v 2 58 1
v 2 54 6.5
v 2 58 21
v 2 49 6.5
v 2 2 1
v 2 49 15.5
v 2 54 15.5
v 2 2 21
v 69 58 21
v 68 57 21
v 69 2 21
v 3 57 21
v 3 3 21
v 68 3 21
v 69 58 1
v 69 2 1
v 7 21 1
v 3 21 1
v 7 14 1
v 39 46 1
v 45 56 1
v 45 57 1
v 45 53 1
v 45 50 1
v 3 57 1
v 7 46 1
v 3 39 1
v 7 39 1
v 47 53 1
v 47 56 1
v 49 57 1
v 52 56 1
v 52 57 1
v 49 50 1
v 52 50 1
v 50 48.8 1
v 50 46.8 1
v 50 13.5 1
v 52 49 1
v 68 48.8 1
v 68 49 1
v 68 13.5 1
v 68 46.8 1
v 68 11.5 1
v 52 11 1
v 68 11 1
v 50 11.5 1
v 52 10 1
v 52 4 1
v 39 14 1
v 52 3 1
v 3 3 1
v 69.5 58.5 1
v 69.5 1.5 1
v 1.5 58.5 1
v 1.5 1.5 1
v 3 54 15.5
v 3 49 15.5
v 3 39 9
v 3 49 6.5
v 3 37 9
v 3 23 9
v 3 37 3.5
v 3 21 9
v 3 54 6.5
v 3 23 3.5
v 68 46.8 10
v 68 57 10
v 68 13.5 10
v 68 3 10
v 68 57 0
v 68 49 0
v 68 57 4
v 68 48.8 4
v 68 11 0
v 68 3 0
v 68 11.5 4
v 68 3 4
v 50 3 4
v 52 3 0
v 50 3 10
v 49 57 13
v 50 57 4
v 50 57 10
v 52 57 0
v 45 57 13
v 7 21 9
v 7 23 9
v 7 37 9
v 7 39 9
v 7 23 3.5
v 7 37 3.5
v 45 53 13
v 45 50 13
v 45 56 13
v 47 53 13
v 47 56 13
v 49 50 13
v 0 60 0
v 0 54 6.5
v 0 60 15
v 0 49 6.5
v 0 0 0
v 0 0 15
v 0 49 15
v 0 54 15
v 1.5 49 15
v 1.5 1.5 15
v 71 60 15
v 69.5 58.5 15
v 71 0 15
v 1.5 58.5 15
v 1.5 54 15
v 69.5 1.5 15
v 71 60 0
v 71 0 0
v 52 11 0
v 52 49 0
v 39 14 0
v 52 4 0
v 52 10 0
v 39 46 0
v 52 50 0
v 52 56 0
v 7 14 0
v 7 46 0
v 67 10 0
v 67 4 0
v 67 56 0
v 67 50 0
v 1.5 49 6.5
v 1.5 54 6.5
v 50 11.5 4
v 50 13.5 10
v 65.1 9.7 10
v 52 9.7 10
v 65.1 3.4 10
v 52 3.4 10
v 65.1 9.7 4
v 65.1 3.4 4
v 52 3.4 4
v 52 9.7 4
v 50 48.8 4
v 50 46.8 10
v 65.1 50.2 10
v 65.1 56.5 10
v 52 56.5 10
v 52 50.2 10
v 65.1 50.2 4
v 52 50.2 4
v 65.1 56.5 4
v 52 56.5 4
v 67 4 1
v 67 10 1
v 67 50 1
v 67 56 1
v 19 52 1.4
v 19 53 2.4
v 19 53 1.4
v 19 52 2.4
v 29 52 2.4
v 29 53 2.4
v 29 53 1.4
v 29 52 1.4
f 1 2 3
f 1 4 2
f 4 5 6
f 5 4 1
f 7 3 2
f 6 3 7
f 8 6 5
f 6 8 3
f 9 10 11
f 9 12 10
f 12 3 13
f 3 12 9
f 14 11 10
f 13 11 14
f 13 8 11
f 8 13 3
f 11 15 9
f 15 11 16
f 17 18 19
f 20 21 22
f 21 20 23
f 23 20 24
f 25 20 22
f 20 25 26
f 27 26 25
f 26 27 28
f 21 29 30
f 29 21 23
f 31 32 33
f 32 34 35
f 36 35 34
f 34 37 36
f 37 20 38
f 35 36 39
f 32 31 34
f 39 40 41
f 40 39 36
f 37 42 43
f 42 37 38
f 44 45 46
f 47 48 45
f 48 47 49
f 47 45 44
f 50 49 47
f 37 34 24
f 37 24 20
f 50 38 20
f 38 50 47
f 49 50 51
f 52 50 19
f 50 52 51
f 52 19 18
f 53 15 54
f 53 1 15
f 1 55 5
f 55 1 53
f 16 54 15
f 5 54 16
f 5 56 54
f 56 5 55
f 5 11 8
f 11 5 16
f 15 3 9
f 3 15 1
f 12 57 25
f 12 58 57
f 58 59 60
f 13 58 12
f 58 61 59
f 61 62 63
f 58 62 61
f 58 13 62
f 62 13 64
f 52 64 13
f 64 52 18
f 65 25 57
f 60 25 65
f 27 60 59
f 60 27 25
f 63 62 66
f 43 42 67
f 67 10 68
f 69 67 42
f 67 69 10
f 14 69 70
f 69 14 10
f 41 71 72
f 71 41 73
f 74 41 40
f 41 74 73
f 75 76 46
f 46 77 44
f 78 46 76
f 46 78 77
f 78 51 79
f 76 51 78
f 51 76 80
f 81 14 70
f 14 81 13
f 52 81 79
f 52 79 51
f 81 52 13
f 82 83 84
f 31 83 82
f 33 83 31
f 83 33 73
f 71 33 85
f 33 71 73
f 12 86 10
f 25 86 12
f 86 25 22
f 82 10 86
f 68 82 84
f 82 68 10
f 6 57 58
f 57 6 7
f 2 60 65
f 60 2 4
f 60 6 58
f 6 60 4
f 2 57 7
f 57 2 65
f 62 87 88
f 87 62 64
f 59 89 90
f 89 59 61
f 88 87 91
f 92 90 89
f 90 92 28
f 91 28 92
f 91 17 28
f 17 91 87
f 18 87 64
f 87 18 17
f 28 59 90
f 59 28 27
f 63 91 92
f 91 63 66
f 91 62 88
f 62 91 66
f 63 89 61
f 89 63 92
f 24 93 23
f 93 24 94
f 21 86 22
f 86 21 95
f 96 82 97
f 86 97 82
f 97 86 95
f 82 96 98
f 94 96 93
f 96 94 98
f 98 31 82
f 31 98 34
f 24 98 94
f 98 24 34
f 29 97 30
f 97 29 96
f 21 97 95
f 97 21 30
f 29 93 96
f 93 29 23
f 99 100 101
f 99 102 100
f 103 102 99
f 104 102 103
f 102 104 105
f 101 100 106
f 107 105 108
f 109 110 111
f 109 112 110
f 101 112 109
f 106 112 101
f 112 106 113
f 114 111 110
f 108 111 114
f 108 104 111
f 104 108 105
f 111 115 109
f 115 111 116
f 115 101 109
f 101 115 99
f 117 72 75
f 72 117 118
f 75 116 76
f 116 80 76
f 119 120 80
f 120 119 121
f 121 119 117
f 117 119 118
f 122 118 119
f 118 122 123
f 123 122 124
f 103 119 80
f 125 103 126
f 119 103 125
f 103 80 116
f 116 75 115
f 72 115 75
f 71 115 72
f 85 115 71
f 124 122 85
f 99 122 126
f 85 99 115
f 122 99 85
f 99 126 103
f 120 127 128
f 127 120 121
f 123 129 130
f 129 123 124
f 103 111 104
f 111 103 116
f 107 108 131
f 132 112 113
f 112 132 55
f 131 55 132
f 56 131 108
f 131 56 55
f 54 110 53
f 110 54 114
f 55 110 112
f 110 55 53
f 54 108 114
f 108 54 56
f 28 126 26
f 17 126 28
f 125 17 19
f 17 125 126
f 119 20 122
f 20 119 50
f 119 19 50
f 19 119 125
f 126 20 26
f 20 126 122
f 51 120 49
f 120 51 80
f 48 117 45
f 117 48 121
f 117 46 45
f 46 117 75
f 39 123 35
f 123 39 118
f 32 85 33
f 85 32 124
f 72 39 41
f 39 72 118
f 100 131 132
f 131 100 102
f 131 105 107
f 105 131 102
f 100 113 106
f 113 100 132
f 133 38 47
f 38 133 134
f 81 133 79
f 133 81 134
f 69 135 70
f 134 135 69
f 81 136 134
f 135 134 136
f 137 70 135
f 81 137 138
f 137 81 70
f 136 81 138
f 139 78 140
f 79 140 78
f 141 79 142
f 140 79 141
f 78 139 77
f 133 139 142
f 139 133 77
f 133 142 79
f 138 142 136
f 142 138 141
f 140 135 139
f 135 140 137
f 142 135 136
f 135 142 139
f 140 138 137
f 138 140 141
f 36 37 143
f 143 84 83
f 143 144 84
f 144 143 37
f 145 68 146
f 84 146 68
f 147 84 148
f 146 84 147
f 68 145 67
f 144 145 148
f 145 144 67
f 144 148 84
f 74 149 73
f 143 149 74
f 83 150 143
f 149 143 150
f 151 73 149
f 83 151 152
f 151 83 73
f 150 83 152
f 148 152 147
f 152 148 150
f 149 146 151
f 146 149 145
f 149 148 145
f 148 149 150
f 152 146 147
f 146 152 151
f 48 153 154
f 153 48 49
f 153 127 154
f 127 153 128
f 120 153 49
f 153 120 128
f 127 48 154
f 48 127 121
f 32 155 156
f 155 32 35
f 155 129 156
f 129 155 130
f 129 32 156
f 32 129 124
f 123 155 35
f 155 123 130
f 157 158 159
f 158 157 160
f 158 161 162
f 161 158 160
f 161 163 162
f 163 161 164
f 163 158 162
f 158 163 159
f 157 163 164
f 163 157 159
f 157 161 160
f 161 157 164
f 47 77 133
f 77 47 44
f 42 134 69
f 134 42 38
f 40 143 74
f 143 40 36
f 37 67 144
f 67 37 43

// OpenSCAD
/*
 * @copyright Copyright (C) 2016 Leiden Tech. All rights reserved.
 * @license http://www.gnu.org/licenses/gpl-3.0.txt GNU General Public License v3
 * 
 */
//covered switches boloblinky variation

$wall=1;
$height=15;
$length=71;
$width=60;
$totalheight=20;
$screen=32;

difference (){
 translate([0,0,0])  
 cube ([$length, $width, $height]);

 //cutout
 translate([$wall*1.5,$wall*1.5,$wall]) 
 cube ([$length-$wall*3, $width-$wall*3, $totalheight]);

 //screen
 translate([5+$wall*2,($width-$screen)/2,0])
 cube ([$screen, $screen, $wall]); 
    
 //button top cutout  
 translate([$length-$wall*2-17,$wall*2+1,0])  
 cube ([16, 8, $wall]);
 translate([$length-$wall*2-17,$width-11,0])  
 cube ([16, 8, $wall]);

 //usb hole
 translate([$wall-2,$width-11,5.5+$wall])  
 cube ([5, 5, 9]);
}
//button top cutout fill  
translate([$length-$wall*2-17,$wall*3+1,0])  
cube ([15, 6, $wall]);
translate([$length-$wall*2-17,$width-5-5,0])  
cube ([15, 6, $wall]);

difference()
{ //totalheight box
 translate([$wall*2,$wall*2,$wall])  
 cube ([$length-$wall*3-1, $width-$wall*3-1, $totalheight]);
 //inner cutout
 translate([$wall*3,$wall*3,$wall])  
 cube ([$length-$wall*4-2, $width-$wall*4-2, $totalheight]);

 //usb hole
 translate([$wall-2,$width-11,5.5+$wall])  
 cube ([5, 5, 9]); 
}
//nano align
translate([$wall+18,$width-8,$wall+.4])  
cube ([10, 1, 1]);


//max7219 pillow
difference()
{
 translate([$wall*2,$width/2-9,$wall])  
 cube ([5, 18, 8]);
 translate([$wall*2,$width/2-7,3.5])  
 cube ([5, 14, 8]);
}

//buttons housing
translate([$length-$wall*2-19,$wall+10.5,0])  
cube ([18, $wall*2, 10]);

translate([$length-$wall*2-19,$wall+1.5,4])
difference (){
 cube ([18, 10, 6]);
 translate([2,.9,0])  
 cube ([13.1, 6.3, 6]);
}

translate([$length-$wall*2-19,$width-13.2,0])  
cube ([18, $wall*2, 10]);

translate([$length-$wall*2-19,$width-12,4])  
difference (){
 cube ([18, 9, 6]);
 translate([2,2.2,0])  
 cube ([13.1, 6.3, 6]);
}
//end button housing

//nano end wall
difference() {
 translate([$wall*2+43,$width-10,$wall])  
 cube ([4, 7, 12]);
 translate([$wall*2+43,$width-7,$wall])  
 cube ([2, 3, 12]);
}
